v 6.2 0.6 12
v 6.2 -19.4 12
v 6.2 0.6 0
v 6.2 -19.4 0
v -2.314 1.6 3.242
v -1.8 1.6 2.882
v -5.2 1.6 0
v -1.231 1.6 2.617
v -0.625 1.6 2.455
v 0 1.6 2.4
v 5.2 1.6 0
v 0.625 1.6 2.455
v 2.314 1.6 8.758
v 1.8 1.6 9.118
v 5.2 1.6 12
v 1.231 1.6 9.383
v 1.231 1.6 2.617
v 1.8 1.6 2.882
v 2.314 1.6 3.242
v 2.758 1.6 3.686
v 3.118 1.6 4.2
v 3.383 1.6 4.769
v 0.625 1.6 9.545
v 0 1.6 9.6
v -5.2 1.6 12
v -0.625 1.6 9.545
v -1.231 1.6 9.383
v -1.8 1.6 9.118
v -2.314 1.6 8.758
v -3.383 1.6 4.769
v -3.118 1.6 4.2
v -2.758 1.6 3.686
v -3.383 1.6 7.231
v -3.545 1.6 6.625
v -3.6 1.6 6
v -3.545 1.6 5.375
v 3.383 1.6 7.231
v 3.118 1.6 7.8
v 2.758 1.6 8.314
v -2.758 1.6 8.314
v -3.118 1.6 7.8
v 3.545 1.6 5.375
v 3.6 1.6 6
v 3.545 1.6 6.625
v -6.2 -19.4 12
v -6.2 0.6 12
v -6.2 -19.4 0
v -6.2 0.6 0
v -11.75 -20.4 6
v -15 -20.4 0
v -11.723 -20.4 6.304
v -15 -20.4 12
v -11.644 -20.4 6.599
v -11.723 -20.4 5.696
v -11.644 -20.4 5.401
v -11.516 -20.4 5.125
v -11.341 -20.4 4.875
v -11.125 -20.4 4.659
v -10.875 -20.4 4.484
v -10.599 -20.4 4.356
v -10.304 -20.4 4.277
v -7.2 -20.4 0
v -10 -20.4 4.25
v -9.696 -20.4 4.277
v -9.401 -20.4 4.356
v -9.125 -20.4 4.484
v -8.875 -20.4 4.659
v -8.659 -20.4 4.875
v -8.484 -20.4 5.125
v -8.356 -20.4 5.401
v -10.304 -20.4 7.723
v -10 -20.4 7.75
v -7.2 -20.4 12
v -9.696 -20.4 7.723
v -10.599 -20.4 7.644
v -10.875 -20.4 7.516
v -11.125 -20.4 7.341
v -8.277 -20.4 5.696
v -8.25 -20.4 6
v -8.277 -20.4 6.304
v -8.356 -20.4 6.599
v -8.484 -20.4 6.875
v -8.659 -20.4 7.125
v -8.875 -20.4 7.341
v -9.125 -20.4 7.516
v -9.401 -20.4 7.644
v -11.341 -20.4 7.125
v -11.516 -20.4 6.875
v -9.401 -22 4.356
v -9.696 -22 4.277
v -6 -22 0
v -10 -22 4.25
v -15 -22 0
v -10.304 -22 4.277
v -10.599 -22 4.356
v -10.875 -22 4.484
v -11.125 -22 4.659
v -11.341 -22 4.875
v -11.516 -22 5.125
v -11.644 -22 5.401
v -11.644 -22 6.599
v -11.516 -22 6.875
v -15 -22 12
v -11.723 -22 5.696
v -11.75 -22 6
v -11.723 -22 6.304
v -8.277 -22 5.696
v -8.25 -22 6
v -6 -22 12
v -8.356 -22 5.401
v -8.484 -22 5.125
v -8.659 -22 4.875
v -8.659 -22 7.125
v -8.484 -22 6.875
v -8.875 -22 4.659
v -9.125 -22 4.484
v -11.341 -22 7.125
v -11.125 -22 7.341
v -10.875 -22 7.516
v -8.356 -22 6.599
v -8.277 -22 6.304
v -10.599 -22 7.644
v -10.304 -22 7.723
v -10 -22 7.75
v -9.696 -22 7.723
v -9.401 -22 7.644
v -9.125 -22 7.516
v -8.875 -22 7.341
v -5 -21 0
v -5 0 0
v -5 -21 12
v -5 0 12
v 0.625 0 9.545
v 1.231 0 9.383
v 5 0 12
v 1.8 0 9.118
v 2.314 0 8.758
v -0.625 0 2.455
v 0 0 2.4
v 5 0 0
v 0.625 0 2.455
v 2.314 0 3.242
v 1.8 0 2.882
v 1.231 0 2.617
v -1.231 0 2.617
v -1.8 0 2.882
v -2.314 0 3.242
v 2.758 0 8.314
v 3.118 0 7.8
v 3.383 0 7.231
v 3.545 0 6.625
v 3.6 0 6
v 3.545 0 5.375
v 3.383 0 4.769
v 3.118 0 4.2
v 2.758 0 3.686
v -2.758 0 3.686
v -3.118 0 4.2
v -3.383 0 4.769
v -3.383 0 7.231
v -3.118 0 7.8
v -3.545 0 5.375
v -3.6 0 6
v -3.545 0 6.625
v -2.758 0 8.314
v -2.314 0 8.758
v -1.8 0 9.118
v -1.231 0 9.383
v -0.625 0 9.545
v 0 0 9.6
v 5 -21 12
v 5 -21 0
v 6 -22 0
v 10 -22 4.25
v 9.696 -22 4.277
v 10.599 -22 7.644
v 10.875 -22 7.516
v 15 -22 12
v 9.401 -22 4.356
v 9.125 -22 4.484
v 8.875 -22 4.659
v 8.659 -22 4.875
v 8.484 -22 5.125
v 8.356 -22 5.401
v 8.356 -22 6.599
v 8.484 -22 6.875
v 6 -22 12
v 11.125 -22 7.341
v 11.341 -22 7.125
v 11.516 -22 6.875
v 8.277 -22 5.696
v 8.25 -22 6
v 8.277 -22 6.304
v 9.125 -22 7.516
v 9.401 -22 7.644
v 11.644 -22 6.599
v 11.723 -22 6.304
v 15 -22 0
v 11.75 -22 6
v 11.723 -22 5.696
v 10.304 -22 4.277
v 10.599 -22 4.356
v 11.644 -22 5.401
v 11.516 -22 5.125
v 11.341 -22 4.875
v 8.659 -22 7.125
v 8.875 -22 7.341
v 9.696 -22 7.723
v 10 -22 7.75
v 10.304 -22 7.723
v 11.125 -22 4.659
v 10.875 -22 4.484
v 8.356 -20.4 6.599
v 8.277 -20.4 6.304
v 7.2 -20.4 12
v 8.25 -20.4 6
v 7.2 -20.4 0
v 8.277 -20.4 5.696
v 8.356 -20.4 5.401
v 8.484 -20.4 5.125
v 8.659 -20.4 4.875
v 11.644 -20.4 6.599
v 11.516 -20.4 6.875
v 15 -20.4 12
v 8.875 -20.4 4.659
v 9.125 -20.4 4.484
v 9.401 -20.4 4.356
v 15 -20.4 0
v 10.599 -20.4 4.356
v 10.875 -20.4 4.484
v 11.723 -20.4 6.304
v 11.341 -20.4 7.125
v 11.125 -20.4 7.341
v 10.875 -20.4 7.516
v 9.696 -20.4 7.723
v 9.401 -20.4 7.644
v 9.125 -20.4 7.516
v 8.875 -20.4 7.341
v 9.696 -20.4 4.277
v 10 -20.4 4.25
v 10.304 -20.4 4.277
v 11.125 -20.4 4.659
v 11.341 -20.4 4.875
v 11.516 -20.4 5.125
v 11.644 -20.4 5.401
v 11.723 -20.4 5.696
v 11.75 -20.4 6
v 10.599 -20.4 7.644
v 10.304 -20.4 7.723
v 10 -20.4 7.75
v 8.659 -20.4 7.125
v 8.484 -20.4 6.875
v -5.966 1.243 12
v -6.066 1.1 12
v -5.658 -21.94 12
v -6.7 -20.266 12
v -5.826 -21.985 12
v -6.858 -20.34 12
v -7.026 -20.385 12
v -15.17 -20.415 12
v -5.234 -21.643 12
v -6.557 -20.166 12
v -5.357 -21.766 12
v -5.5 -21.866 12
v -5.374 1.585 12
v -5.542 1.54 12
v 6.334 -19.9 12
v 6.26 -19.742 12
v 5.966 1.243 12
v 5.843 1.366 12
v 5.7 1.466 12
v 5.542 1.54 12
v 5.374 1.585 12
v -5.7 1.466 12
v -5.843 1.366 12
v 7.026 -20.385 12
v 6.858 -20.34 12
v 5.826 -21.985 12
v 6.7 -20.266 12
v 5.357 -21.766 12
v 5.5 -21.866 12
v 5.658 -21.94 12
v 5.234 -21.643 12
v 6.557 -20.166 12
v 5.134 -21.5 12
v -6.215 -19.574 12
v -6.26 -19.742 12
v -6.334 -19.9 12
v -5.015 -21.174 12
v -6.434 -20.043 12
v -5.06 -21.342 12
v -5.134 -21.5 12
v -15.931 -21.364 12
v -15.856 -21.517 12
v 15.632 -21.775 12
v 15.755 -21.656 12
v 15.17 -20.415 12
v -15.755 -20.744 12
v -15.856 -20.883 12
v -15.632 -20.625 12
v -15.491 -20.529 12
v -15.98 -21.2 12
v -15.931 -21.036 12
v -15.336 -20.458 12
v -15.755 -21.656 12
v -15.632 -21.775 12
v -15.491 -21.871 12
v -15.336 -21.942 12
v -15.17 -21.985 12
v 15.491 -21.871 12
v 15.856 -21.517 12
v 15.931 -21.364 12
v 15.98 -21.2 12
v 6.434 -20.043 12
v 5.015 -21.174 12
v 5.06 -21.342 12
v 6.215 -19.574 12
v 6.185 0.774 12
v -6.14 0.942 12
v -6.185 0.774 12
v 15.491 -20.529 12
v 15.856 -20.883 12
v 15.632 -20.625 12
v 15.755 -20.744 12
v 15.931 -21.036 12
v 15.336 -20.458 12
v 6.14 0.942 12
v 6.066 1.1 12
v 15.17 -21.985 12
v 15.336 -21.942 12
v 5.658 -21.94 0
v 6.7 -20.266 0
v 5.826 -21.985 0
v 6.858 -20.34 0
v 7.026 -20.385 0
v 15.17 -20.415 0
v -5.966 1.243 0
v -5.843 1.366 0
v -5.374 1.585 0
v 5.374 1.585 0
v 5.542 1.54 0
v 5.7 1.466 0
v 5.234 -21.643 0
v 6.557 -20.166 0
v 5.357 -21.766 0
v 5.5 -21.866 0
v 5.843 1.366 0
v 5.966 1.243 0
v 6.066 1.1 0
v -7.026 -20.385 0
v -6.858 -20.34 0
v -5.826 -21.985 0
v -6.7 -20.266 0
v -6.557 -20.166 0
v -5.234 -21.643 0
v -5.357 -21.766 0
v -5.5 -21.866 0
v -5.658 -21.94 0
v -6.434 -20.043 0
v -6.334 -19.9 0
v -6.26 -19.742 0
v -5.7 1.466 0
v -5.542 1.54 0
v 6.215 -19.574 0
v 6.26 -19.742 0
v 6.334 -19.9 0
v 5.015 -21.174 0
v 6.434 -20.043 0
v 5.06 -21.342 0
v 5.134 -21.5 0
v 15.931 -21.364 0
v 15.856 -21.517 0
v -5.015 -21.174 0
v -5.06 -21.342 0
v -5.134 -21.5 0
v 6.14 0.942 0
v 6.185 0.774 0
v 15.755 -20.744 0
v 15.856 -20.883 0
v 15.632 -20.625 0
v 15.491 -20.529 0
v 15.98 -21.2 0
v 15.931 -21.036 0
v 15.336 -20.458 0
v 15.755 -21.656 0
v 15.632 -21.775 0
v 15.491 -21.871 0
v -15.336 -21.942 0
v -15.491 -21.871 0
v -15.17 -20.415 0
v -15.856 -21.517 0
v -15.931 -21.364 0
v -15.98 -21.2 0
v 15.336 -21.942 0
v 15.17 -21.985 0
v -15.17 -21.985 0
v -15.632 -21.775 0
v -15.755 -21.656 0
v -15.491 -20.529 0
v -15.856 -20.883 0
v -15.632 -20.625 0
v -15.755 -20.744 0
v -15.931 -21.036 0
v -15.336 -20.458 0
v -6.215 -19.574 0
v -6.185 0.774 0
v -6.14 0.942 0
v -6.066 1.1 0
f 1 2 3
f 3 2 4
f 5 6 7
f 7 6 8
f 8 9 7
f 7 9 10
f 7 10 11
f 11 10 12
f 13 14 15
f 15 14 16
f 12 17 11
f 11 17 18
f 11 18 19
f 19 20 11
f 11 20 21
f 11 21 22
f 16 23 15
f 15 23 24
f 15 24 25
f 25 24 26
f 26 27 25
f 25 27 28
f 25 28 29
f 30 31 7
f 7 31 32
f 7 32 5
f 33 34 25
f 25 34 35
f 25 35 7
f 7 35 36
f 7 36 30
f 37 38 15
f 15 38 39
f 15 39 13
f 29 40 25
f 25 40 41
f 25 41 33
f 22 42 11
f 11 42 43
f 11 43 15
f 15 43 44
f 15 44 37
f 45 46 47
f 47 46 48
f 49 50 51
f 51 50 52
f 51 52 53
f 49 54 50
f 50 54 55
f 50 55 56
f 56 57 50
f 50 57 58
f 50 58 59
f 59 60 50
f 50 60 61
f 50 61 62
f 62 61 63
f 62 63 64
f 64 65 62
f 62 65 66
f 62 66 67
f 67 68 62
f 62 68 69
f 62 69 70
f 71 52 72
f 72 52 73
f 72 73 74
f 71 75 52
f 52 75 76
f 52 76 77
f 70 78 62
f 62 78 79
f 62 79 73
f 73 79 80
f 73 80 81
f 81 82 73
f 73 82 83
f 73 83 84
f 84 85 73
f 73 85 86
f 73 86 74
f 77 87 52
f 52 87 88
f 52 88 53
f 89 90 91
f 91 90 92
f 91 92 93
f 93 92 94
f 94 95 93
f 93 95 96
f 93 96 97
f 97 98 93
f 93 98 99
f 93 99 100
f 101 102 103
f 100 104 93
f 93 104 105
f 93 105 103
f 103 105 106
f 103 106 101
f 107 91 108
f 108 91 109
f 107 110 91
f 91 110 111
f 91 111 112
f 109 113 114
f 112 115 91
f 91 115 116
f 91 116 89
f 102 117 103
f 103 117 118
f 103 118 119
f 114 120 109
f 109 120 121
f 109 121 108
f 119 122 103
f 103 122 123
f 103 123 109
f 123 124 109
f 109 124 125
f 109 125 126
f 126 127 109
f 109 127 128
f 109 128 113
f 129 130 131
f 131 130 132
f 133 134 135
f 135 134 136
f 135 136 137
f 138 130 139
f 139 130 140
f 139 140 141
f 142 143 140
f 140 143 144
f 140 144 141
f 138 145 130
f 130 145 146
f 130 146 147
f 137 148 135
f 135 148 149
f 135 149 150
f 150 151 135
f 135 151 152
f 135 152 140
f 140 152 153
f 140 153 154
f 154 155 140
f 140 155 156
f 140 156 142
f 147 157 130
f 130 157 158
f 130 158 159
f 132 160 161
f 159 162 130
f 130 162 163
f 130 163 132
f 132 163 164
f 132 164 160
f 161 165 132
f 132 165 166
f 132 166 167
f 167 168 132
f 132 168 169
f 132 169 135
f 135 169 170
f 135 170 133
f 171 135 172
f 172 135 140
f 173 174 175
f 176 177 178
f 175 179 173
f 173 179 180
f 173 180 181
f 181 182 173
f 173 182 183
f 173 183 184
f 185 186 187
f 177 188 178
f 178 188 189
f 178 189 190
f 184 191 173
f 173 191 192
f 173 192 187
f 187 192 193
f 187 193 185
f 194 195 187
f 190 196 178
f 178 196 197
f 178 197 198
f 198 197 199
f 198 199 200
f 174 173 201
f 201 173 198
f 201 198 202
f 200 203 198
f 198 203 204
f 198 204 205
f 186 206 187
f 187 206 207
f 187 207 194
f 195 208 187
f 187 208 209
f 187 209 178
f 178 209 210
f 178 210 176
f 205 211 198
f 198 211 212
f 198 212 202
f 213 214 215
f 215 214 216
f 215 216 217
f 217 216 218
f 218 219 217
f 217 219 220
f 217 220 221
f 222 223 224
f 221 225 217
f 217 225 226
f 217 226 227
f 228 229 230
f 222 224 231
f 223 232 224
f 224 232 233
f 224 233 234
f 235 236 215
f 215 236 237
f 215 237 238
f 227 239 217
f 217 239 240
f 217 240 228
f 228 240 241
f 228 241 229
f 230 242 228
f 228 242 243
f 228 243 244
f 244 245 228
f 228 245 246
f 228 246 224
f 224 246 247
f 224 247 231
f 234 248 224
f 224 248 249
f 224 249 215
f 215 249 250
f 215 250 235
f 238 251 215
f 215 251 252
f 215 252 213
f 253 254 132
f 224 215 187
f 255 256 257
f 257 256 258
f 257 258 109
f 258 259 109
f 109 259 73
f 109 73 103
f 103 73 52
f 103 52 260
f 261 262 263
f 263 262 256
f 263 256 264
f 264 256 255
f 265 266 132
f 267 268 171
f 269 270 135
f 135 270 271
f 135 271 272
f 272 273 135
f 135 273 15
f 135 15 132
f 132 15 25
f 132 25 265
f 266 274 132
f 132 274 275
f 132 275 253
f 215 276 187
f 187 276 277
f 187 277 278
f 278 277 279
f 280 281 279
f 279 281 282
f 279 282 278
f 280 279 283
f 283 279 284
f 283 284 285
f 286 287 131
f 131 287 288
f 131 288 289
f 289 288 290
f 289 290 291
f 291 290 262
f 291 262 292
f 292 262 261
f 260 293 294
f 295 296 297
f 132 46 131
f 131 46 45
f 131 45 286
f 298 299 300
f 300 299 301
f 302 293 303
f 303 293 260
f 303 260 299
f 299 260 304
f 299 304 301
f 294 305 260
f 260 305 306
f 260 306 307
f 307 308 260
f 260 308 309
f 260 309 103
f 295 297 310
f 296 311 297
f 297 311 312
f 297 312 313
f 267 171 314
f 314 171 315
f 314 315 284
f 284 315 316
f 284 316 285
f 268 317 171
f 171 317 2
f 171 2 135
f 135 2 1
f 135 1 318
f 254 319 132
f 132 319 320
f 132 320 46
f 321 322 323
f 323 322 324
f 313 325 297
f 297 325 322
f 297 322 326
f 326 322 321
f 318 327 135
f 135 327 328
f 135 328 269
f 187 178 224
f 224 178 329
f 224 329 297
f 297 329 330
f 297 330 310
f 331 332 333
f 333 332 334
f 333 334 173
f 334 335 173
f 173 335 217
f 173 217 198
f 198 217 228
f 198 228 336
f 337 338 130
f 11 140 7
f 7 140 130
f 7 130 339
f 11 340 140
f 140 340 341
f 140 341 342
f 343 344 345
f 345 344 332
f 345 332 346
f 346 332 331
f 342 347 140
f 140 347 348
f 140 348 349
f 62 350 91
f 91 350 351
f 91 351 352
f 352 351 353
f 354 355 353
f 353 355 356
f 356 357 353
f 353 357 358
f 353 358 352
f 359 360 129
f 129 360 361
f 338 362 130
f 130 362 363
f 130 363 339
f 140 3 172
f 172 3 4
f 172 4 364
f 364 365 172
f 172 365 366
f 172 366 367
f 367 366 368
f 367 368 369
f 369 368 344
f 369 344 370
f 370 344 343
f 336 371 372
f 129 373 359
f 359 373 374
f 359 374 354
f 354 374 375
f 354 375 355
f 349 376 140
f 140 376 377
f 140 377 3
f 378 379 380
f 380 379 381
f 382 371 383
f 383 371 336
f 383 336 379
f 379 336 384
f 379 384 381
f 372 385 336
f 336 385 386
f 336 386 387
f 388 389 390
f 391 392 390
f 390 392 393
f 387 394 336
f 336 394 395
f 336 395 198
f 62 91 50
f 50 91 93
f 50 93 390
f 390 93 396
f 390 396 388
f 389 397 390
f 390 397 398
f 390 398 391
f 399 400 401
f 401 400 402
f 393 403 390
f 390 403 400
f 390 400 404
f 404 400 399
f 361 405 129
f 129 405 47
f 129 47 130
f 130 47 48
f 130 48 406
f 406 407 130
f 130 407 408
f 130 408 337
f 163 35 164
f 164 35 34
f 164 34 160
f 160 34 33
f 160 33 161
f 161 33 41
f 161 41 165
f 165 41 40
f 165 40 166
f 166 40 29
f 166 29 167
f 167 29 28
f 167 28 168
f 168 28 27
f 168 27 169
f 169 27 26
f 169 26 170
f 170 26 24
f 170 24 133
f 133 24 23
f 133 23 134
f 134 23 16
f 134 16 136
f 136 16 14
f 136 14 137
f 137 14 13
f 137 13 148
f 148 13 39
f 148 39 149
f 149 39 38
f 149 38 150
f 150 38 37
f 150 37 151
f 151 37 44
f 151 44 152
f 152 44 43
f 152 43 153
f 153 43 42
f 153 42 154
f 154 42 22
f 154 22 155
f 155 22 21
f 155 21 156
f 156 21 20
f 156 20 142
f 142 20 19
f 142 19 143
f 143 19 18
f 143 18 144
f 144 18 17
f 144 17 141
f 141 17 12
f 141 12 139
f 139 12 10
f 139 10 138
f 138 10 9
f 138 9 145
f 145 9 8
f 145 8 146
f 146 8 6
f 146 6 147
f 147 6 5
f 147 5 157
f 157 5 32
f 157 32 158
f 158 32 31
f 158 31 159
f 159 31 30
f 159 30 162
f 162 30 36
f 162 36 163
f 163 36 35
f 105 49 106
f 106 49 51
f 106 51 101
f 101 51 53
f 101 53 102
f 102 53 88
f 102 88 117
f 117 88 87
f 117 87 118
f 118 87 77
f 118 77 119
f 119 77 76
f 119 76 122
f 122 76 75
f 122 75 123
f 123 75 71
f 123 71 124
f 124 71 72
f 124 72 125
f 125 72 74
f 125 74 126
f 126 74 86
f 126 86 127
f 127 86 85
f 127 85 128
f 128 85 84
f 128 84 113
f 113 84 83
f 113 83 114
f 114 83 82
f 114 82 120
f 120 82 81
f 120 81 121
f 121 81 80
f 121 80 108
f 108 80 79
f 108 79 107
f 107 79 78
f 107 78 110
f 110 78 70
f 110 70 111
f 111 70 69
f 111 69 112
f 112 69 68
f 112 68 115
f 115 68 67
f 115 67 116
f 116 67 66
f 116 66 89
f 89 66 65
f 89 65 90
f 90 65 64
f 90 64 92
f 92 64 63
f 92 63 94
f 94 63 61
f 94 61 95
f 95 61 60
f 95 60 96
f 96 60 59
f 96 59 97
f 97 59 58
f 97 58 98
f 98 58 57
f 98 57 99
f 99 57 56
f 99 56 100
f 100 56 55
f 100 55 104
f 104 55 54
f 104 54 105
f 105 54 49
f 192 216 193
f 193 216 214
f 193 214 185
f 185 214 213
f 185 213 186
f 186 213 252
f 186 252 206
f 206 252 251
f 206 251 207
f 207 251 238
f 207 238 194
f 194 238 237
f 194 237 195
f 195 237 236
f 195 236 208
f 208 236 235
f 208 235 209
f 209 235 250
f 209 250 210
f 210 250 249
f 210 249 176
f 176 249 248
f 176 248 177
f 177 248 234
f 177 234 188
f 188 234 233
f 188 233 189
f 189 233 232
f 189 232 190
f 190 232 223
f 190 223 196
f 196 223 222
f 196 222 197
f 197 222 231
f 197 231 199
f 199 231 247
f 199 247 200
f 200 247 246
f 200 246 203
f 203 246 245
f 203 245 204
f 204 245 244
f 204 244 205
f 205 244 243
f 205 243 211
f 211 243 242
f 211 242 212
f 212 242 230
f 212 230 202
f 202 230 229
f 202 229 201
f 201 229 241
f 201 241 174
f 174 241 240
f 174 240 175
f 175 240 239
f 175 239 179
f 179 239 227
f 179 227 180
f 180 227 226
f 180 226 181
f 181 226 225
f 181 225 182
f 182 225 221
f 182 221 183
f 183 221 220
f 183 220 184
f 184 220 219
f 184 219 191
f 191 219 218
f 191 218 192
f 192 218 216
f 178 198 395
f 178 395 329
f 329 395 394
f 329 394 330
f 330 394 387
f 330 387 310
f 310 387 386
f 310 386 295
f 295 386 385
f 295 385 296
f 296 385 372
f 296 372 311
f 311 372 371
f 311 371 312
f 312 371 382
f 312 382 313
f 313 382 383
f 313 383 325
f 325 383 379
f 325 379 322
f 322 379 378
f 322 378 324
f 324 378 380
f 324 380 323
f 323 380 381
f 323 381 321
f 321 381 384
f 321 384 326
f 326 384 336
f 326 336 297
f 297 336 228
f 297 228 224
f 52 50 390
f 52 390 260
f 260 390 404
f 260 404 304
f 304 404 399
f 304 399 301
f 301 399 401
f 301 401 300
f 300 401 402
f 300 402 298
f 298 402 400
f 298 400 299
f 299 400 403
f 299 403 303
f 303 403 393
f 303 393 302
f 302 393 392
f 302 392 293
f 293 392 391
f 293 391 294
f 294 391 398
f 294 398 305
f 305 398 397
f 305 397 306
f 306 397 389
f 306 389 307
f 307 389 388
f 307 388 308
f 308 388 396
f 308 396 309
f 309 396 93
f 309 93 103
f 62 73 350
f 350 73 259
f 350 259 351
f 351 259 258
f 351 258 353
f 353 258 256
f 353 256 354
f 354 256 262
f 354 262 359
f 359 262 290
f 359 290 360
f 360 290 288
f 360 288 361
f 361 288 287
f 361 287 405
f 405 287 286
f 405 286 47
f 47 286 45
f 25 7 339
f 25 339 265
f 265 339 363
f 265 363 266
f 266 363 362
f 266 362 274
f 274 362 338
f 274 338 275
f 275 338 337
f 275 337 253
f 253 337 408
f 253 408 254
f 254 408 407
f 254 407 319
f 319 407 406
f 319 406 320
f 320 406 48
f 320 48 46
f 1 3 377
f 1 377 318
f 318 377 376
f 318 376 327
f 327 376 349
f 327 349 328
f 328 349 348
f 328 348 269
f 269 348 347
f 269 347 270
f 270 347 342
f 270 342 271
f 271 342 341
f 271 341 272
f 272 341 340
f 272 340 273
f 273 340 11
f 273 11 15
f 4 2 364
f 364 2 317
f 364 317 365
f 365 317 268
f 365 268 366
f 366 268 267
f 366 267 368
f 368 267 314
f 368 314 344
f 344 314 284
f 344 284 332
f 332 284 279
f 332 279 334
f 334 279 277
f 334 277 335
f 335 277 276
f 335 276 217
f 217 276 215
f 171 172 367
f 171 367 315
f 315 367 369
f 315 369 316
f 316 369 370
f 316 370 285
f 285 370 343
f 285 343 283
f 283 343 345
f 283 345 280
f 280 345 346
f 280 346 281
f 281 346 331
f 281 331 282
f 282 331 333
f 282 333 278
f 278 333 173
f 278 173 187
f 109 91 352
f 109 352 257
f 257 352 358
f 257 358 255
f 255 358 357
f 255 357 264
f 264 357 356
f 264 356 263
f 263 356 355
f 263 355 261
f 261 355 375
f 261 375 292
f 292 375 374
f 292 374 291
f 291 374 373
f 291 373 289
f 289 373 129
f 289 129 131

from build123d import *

# Parameters (mm, degrees)
BOSS_EXTRUDE1_DEPTH = 12
SKETCH3_R           = 3.6
CUT_EXTRUDE1_DEPTH  = 31.934770082
SKETCH5_R           = 1.75
CUT_EXTRUDE2_DEPTH  = 30.732137495
FILLET1_R           = 1


with BuildPart() as part:
    # Sketch2 → Boss-Extrude1 (new body)
    with BuildSketch(Plane.XY):
        Polygon((-5, 0), (5, 0), (5, -22), (16, -22), (16, -20.4), (6.2, -20.4), (6.2, 1.6), (-6.2, 1.6), (-6.2, -20.4), (-16, -20.4), (-16, -22), (-5, -22), align=None)
    extrude(amount=BOSS_EXTRUDE1_DEPTH)

    # Sketch3 → Cut-Extrude1 (cut, through all)
    with BuildSketch(Plane(origin=(0, 1.6, 0), x_dir=(1, 0, 0), z_dir=(0, 1, 0))):
        with Locations(Location((0, -6, 0), (0, 0, 180))):
            Circle(SKETCH3_R)
    extrude(amount=-CUT_EXTRUDE1_DEPTH, mode=Mode.SUBTRACT)

    # Sketch5 → Cut-Extrude2 (cut, through all)
    with BuildSketch(Plane(origin=(0, -20.4, 0), x_dir=(1, 0, 0), z_dir=(0, 1, 0))):
        with Locations(Location((-10, -6, 0), (0, 0, 180))):
            Circle(SKETCH5_R)
        with Locations(Location((10, -6, 0), (0, 0, 180))):
            Circle(SKETCH5_R)
    extrude(amount=-CUT_EXTRUDE2_DEPTH, mode=Mode.SUBTRACT)

    # Fillet1
    # the kernel refuses this fillet: 1 mm, written as the material it adds along each edge
    with BuildSketch(Plane(origin=(-6.2, -20.4, 0), x_dir=(0, 1, 0), z_dir=(0, 0, 1)), Plane(origin=(6.2, -20.4, 0), x_dir=(1, 0, 0), z_dir=(0, 0, 1))) as fillet1_piece_1:
        with BuildLine():
            CenterArc((FILLET1_R, FILLET1_R), FILLET1_R, 180, 90)
            Line((0, FILLET1_R), (0, 0))
            Line((0, 0), (FILLET1_R, 0))
        make_face()
    extrude(amount=12)
    # the kernel refuses this fillet: 1 mm, written as the material it takes off along each edge
    with BuildSketch(Plane(origin=(16, -20.4, -2.5), x_dir=(0, -1, 0), z_dir=(0, 0, 1)), Plane(origin=(16, -22, -2.5), x_dir=(-1, 0, 0), z_dir=(0, 0, 1)), Plane(origin=(-16, -20.4, -2.5), x_dir=(1, 0, 0), z_dir=(0, 0, 1)), Plane(origin=(-6.2, 1.6, -2.5), x_dir=(1, 0, 0), z_dir=(0, 0, 1)), Plane(origin=(6.2, 1.6, -2.5), x_dir=(0, -1, 0), z_dir=(0, 0, 1)), Plane(origin=(5, -22, -2.5), x_dir=(0, 1, 0), z_dir=(0, 0, 1))) as fillet1_2_piece_1:
        with BuildLine():
            CenterArc((FILLET1_R, -FILLET1_R), FILLET1_R, 90, 90)
            Line((0, -FILLET1_R), (0, 0))
            Line((0, 0), (FILLET1_R, 0))
        make_face()
    extrude(amount=17, mode=Mode.SUBTRACT)
    with BuildSketch(Plane(origin=(-16, -22, -2.5), x_dir=(1, 0, 0), z_dir=(0, 0, 1)), Plane(origin=(-5, -22, -2.5), x_dir=(0, 1, 0), z_dir=(0, 0, 1))) as fillet1_2_piece_2:
        with BuildLine():
            CenterArc((FILLET1_R, FILLET1_R), FILLET1_R, 180, 90)
            Line((0, FILLET1_R), (0, 0))
            Line((0, 0), (FILLET1_R, 0))
        make_face()
    extrude(amount=17, mode=Mode.SUBTRACT)


solid = part.part
